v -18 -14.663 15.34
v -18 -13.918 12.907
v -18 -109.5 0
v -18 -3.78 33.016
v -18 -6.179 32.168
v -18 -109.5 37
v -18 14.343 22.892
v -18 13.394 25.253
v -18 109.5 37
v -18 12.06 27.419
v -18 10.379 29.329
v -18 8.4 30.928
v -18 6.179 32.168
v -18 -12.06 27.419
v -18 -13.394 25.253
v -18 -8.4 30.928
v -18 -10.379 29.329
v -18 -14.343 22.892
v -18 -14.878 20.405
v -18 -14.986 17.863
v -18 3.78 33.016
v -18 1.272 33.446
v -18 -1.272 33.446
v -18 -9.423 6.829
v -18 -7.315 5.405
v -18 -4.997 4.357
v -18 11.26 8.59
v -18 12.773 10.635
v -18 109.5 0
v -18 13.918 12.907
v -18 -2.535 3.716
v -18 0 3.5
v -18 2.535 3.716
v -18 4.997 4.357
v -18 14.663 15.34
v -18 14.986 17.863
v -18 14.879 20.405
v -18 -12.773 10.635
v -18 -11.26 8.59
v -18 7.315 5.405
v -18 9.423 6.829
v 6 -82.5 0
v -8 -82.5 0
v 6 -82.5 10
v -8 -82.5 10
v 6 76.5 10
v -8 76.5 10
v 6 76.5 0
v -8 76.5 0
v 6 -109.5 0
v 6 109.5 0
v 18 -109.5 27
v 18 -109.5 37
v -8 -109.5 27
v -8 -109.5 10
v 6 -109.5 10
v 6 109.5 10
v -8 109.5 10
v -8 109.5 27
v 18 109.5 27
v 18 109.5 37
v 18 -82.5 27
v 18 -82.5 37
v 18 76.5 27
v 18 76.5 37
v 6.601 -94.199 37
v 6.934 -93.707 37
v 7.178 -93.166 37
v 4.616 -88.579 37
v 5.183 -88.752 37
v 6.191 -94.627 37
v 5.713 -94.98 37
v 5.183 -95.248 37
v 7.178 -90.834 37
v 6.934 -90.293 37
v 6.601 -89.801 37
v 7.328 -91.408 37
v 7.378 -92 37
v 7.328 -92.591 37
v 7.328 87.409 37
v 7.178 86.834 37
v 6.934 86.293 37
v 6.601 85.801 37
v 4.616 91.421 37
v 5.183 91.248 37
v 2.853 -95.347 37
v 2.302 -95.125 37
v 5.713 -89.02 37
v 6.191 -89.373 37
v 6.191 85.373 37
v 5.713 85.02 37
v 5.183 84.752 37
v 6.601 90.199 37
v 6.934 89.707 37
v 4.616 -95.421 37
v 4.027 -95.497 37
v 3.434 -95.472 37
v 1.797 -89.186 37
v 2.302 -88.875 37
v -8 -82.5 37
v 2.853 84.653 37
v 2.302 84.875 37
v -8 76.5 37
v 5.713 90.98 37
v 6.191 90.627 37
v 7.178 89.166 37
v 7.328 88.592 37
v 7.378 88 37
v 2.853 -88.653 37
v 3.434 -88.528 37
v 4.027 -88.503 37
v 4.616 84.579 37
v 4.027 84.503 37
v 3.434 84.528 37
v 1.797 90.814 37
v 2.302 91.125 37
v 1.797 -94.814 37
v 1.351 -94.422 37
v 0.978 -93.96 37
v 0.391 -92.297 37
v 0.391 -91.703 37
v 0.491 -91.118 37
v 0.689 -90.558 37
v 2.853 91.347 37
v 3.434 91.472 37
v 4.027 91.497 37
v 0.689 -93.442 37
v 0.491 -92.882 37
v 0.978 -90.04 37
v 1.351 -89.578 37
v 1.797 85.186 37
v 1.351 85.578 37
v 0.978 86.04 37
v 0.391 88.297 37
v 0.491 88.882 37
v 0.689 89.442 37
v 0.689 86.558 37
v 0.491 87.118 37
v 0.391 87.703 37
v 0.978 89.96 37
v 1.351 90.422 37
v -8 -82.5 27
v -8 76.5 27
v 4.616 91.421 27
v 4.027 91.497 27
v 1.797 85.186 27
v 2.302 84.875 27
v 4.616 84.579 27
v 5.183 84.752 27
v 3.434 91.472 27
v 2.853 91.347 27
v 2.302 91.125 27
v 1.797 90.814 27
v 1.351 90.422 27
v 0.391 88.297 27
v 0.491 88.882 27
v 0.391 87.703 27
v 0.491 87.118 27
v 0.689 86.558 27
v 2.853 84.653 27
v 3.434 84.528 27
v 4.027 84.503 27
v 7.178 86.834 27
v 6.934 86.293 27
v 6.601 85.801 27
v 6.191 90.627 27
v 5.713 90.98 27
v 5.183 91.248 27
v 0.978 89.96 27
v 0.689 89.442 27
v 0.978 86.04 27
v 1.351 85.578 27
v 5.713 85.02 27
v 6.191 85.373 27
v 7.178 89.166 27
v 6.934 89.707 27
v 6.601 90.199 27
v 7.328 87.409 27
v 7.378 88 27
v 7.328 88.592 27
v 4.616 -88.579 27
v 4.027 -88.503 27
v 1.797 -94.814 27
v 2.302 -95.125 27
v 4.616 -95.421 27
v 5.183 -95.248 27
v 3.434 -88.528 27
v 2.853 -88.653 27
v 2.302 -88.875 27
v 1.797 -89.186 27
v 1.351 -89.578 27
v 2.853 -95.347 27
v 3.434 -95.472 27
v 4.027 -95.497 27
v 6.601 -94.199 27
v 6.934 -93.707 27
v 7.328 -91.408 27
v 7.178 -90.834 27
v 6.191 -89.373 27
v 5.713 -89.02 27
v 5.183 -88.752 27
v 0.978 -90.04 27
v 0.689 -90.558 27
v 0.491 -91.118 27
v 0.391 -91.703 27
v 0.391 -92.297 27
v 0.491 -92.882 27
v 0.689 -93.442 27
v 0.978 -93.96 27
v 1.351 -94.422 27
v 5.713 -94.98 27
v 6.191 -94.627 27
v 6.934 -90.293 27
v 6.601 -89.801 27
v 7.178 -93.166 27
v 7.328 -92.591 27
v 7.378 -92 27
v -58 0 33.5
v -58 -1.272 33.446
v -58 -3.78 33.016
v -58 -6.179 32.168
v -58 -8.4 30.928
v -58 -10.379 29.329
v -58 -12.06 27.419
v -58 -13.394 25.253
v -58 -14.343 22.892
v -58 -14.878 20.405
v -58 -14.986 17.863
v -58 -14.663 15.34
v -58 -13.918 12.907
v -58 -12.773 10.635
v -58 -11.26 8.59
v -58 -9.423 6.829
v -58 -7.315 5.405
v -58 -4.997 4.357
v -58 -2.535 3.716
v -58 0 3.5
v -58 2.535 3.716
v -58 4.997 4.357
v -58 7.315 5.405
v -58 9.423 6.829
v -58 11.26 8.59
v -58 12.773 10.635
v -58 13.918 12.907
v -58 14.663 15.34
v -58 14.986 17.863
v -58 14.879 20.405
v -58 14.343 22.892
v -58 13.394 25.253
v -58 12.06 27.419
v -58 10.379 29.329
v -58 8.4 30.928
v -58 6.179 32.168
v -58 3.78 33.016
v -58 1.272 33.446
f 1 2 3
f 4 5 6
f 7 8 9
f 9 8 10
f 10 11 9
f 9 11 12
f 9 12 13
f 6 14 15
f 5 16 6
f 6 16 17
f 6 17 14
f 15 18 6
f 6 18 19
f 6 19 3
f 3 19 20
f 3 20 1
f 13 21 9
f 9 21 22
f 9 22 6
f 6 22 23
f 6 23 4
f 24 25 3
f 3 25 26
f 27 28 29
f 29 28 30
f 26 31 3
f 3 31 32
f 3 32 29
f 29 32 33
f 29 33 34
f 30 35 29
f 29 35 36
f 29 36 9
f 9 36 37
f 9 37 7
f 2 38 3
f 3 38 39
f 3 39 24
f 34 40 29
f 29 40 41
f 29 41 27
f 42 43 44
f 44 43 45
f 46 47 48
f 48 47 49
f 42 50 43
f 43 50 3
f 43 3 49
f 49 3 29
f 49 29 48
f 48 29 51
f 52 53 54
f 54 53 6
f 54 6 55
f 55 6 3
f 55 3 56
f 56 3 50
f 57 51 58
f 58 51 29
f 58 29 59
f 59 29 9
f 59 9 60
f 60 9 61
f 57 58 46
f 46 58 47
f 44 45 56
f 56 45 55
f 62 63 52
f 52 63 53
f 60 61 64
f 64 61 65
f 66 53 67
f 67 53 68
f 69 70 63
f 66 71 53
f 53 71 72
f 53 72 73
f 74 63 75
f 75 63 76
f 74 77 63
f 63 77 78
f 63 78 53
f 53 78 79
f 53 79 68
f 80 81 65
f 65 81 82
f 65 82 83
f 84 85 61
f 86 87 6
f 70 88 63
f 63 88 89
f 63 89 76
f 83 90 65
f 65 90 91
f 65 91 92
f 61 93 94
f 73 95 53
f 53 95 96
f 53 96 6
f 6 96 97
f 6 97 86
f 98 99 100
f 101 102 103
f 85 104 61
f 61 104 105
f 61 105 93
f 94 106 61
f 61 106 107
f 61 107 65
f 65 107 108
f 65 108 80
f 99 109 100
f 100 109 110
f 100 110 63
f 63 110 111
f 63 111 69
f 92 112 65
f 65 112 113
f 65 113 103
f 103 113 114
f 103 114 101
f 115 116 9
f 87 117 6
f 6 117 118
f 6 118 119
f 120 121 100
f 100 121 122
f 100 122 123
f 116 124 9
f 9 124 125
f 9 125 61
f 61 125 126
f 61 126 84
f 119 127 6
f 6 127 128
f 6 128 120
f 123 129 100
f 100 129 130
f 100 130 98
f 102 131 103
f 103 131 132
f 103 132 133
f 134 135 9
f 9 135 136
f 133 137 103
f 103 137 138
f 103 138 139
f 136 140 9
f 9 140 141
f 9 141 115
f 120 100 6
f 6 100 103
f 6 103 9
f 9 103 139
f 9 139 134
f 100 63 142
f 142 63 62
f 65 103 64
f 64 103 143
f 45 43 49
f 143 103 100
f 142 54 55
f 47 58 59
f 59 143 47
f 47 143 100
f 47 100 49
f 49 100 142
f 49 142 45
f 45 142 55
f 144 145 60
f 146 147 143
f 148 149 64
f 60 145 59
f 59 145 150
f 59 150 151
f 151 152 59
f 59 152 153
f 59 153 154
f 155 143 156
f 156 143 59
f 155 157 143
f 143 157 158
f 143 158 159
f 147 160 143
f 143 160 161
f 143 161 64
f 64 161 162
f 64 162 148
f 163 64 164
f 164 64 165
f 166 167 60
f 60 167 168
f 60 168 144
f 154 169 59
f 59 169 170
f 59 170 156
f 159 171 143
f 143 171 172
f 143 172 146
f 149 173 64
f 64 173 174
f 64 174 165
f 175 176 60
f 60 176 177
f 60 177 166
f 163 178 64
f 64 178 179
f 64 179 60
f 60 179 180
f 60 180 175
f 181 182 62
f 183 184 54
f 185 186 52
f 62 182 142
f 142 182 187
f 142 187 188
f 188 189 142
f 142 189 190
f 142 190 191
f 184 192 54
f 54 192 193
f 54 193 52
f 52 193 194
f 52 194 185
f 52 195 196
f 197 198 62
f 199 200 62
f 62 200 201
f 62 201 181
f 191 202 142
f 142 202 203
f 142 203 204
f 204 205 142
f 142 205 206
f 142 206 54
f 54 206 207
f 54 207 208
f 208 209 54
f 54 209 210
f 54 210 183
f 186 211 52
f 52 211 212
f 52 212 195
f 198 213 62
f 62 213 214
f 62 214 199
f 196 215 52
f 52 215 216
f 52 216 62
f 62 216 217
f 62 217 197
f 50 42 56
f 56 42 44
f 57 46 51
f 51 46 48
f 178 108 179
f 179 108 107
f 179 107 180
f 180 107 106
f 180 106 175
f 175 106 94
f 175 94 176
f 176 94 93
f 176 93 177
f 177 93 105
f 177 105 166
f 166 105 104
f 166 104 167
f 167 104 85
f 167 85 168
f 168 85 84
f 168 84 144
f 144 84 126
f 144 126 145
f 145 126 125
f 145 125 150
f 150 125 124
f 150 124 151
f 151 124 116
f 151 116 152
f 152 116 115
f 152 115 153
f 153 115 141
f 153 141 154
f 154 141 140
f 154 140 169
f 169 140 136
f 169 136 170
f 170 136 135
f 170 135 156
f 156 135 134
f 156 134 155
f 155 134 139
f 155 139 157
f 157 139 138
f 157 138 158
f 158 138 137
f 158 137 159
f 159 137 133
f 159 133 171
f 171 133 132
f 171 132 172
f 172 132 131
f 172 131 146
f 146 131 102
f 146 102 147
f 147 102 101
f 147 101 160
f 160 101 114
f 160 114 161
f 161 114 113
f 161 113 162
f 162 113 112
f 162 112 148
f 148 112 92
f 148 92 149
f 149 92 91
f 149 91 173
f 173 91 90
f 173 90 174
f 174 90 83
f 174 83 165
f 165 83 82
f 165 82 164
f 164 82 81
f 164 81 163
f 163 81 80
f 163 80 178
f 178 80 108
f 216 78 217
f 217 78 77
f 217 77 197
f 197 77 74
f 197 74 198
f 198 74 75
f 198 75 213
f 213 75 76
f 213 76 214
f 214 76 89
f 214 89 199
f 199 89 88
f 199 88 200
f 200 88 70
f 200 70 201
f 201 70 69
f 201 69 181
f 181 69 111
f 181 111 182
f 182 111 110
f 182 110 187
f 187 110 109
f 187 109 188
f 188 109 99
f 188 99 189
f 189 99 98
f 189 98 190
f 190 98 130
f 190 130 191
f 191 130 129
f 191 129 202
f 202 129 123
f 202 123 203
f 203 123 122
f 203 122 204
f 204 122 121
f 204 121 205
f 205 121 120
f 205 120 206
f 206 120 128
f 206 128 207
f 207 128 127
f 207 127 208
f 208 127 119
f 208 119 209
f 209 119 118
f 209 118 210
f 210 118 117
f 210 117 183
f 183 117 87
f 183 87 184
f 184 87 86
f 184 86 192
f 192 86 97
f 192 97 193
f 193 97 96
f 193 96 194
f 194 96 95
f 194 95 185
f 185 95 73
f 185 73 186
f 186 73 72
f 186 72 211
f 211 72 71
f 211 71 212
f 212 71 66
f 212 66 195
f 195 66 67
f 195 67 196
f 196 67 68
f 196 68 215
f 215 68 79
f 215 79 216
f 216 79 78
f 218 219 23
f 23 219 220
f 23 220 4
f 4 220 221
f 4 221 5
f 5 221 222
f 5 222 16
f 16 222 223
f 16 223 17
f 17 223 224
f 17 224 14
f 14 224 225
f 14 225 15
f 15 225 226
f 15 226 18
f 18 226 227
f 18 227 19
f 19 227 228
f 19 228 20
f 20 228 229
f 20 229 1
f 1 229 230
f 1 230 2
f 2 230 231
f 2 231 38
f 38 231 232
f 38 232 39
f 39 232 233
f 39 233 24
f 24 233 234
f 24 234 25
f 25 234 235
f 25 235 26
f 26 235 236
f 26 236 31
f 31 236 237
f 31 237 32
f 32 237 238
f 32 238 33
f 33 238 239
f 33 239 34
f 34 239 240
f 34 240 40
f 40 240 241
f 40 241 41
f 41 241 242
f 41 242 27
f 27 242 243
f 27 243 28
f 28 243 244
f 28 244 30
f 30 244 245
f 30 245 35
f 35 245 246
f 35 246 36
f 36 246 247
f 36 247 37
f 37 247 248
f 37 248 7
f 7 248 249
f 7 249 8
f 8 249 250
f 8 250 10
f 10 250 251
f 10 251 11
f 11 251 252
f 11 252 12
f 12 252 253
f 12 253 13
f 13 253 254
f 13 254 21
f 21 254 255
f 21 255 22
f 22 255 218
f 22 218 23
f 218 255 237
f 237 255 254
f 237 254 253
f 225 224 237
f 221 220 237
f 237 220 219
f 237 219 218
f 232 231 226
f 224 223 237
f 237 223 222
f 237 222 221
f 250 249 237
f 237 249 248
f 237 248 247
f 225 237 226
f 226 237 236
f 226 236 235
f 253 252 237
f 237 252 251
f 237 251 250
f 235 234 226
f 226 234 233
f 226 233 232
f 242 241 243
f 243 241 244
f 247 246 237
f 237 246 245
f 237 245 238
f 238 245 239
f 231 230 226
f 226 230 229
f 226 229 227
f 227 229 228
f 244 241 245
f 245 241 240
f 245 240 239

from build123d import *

# Parameters (mm, degrees)
SKETCH_1_W           = 36
SKETCH_1_H           = 219
EXTRUDE_1_DEPTH      = 37
SKETCH_2_W           = 80.767995678
SKETCH_2_H           = 159
CUT_EXTRUDE_1_DEPTH  = 117.975424769
CUT_EXTRUDE_START    = 10
SKETCH_9_W           = 26
SKETCH_9_H           = 219
CUT_EXTRUDE_7_DEPTH  = 17
SKETCH_10_W          = 12
SKETCH_10_H          = 236
CUT_EXTRUDE_8_DEPTH  = 17
CUT_EXTRUDE_START_2  = 37
SKETCH_11_R          = 3.5
CUT_EXTRUDE_11_DEPTH = 17
SKETCH_25_R          = 15
EXTRUDE_3_DEPTH      = 40


with BuildPart() as part:
    # 스케치1 → 보스-돌출1 (new body)
    with BuildSketch(Plane.XY):
        Rectangle(SKETCH_1_W, SKETCH_1_H)
    extrude(amount=EXTRUDE_1_DEPTH)

    # 스케치2 → 컷-돌출1 (cut, through all)
    with BuildSketch(Plane.XY):
        with Locations((32.383997839, -3)):
            Rectangle(SKETCH_2_W, SKETCH_2_H)
    extrude(amount=CUT_EXTRUDE_1_DEPTH, mode=Mode.SUBTRACT)

    # 스케치9 → 컷-돌출7 (cut)
    with BuildSketch(Plane.XY.offset(CUT_EXTRUDE_START)):
        with Locations((5, 0)):
            Rectangle(SKETCH_9_W, SKETCH_9_H)
    extrude(amount=CUT_EXTRUDE_7_DEPTH, mode=Mode.SUBTRACT)

    # 스케치10 → 컷-돌출8 (cut)
    with BuildSketch(Plane.XY):
        with Locations((12, 8.5)):
            Rectangle(SKETCH_10_W, SKETCH_10_H)
    extrude(amount=CUT_EXTRUDE_8_DEPTH, mode=Mode.SUBTRACT)

    # 스케치11 → 컷-돌출11 (cut)
    with BuildSketch(Plane.XY.offset(CUT_EXTRUDE_START_2)):
        with Locations((3.878169626, 88)):
            Circle(SKETCH_11_R)
        with Locations((3.878169626, -92)):
            Circle(SKETCH_11_R)
    extrude(amount=-CUT_EXTRUDE_11_DEPTH, mode=Mode.SUBTRACT)

    # 스케치25 → 보스-돌출3 (add)
    with BuildSketch(Plane.ZY.offset(18)):
        with Locations(Location((18.5, 0, 0), (0, 0, 180))):
            Circle(SKETCH_25_R)
    extrude(amount=EXTRUDE_3_DEPTH)


solid = part.part
